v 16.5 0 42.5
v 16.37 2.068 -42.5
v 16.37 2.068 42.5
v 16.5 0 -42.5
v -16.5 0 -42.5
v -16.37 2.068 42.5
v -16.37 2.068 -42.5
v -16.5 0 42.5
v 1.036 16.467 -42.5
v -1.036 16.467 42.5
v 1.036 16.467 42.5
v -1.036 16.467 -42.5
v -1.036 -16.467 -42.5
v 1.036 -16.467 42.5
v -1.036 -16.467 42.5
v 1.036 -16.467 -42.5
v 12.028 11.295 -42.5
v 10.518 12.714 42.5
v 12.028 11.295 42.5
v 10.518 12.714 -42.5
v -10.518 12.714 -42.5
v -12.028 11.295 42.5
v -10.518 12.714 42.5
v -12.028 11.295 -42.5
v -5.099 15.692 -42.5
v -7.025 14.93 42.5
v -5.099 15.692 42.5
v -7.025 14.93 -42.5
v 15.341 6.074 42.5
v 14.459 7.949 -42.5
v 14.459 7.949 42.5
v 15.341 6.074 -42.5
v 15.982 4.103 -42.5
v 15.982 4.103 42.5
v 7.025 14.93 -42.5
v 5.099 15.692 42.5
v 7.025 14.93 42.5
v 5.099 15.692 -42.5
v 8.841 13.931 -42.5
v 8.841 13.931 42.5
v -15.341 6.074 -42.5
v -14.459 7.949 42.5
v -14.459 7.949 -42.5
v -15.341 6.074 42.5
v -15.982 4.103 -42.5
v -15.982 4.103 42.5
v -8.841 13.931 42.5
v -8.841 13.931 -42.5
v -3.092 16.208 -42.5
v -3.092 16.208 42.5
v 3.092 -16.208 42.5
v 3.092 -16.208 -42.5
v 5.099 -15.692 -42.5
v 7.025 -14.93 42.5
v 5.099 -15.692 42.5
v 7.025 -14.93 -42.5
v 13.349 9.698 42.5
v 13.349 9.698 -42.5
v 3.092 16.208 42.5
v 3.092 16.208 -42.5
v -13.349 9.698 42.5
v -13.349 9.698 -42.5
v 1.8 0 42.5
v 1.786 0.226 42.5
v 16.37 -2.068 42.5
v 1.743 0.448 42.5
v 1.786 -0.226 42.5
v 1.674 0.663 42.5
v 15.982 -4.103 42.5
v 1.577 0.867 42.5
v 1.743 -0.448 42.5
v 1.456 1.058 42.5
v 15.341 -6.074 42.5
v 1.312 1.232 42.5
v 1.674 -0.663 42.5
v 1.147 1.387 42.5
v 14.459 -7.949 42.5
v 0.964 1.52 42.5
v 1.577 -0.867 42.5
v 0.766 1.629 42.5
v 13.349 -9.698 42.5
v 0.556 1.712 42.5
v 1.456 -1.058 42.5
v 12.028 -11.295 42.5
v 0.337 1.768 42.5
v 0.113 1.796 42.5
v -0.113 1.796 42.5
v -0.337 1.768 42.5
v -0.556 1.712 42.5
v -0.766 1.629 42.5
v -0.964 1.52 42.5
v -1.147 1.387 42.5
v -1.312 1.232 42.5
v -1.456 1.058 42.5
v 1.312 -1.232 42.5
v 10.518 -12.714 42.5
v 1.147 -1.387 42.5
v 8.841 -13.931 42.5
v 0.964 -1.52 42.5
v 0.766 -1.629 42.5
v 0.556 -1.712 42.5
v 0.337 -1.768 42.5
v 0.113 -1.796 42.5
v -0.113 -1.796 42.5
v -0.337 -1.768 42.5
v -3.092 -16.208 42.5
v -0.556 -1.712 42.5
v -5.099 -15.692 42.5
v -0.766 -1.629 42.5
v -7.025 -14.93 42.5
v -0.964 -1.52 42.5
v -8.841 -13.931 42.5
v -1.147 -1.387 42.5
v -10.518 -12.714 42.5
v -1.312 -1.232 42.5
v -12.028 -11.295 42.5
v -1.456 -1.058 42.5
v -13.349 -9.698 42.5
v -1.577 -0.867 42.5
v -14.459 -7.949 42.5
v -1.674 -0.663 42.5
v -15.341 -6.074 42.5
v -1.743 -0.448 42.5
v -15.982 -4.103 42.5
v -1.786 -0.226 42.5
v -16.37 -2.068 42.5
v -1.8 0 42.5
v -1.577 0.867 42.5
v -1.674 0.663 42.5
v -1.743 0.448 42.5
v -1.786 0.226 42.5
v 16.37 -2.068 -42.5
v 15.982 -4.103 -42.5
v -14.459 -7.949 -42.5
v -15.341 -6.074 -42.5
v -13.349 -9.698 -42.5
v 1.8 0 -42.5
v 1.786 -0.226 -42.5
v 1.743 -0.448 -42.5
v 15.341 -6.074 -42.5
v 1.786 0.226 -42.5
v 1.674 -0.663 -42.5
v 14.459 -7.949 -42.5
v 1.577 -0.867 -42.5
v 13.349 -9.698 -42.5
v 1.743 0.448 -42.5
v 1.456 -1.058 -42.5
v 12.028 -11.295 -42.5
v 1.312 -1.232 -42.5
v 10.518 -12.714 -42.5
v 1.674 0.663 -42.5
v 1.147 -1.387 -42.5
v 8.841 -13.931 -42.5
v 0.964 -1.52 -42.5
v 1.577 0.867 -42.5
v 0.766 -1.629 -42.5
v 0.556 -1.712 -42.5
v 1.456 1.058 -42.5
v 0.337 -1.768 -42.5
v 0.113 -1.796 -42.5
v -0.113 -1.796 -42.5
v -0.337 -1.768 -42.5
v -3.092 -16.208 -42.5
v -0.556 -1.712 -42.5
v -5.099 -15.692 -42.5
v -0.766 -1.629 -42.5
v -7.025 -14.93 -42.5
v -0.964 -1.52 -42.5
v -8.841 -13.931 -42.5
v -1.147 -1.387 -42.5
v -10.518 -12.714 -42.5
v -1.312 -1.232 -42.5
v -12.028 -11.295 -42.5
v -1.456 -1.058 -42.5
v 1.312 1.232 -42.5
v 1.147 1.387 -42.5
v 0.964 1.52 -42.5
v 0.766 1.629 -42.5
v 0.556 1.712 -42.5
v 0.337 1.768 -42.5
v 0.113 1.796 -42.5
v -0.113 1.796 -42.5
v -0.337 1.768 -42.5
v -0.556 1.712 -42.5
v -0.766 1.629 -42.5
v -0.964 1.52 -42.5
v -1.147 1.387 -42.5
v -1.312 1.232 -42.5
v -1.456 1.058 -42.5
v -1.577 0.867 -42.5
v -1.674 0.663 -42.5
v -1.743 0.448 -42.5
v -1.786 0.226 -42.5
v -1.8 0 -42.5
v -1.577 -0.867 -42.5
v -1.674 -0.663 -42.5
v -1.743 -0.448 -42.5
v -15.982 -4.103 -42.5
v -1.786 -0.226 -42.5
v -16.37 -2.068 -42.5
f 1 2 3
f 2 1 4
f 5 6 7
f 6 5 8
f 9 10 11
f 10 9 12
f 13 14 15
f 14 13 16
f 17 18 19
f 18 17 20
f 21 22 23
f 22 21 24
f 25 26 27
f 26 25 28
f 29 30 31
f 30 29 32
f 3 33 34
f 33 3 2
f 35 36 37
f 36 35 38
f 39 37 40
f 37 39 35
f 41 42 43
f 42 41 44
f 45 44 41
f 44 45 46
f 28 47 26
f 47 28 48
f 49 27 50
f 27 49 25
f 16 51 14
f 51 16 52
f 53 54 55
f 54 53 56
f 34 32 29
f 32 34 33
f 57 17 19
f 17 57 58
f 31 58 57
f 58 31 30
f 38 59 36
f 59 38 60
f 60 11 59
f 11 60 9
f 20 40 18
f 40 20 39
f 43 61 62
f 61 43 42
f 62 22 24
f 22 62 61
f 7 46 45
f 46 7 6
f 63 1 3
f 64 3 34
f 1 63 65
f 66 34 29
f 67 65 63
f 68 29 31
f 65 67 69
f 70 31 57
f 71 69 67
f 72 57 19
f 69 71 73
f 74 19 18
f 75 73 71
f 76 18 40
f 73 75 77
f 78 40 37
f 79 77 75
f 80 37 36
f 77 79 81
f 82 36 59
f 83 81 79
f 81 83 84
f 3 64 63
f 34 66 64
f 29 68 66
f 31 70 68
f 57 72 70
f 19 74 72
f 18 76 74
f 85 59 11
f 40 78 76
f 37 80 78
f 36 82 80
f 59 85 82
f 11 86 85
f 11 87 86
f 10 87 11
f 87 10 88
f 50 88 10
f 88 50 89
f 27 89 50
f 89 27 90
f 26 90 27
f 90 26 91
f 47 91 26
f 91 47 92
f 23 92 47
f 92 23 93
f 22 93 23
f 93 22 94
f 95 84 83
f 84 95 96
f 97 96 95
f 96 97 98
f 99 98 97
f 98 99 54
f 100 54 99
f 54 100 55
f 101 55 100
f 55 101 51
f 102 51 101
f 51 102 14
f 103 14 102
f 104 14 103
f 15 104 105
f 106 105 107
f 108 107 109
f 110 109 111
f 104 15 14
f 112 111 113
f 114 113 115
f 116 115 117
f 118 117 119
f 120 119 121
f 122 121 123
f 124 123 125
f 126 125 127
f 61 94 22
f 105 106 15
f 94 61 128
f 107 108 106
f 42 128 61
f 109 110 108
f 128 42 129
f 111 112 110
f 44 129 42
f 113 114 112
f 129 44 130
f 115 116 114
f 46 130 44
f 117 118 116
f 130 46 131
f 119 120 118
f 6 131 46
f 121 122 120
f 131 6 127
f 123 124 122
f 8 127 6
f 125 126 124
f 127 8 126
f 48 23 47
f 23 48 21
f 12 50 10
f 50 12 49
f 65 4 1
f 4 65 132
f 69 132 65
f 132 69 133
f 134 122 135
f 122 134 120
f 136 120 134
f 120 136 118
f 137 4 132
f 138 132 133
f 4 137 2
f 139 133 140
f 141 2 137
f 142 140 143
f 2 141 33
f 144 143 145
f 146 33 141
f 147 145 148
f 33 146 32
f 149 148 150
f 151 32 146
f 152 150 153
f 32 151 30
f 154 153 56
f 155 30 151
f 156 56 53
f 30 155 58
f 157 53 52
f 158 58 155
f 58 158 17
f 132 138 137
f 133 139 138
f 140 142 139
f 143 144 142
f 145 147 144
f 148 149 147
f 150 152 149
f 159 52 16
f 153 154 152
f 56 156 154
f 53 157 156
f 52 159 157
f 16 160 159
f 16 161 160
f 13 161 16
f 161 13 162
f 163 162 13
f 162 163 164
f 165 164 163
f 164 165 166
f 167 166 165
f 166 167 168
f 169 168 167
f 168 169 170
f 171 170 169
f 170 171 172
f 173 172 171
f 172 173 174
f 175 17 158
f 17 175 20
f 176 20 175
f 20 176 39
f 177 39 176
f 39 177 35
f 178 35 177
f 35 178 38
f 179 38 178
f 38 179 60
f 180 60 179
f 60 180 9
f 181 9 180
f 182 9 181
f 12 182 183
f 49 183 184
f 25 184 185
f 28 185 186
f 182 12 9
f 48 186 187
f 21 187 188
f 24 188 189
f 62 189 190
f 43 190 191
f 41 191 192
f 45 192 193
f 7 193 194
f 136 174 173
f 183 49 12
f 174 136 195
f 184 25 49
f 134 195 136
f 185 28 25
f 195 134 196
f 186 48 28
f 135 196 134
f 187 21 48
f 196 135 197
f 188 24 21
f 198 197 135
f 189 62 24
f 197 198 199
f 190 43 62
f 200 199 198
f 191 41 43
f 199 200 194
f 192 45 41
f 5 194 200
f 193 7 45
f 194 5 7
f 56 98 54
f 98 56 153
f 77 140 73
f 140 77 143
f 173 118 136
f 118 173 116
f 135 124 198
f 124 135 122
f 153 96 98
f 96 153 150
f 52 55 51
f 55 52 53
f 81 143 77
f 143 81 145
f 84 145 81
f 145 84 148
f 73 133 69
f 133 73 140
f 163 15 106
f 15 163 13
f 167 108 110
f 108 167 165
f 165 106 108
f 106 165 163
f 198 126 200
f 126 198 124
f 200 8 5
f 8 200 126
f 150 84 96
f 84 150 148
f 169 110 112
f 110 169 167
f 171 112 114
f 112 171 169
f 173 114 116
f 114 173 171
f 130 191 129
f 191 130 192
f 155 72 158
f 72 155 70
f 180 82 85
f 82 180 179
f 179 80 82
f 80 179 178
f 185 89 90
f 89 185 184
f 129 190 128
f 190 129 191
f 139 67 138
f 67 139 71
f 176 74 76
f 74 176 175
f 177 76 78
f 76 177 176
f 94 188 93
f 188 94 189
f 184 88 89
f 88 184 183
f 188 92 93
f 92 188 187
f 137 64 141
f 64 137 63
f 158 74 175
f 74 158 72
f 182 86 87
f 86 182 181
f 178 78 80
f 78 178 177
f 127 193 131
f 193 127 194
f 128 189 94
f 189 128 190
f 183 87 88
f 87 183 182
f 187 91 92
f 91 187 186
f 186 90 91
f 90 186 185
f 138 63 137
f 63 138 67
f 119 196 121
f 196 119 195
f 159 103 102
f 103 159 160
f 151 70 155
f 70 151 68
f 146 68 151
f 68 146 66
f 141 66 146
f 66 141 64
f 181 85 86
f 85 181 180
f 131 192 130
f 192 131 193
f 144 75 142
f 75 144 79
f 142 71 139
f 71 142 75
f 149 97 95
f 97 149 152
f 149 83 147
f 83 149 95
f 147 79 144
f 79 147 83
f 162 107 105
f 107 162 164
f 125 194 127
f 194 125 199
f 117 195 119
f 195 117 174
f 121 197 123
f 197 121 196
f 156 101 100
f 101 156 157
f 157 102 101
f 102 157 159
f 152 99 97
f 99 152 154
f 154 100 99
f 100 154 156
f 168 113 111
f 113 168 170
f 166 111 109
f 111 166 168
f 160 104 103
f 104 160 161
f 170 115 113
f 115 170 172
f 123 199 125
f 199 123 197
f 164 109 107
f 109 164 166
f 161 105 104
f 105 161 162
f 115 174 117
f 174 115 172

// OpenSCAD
$fn = 50;


difference() {
	union() {
		translate(v = [0, 0, -42.5000000000]) {
			cylinder(h = 85, r = 16.5000000000);
		}
	}
	union() {
		translate(v = [0, 0, -100.0000000000]) {
			cylinder(h = 200, r = 1.8000000000);
		}
	}
}
